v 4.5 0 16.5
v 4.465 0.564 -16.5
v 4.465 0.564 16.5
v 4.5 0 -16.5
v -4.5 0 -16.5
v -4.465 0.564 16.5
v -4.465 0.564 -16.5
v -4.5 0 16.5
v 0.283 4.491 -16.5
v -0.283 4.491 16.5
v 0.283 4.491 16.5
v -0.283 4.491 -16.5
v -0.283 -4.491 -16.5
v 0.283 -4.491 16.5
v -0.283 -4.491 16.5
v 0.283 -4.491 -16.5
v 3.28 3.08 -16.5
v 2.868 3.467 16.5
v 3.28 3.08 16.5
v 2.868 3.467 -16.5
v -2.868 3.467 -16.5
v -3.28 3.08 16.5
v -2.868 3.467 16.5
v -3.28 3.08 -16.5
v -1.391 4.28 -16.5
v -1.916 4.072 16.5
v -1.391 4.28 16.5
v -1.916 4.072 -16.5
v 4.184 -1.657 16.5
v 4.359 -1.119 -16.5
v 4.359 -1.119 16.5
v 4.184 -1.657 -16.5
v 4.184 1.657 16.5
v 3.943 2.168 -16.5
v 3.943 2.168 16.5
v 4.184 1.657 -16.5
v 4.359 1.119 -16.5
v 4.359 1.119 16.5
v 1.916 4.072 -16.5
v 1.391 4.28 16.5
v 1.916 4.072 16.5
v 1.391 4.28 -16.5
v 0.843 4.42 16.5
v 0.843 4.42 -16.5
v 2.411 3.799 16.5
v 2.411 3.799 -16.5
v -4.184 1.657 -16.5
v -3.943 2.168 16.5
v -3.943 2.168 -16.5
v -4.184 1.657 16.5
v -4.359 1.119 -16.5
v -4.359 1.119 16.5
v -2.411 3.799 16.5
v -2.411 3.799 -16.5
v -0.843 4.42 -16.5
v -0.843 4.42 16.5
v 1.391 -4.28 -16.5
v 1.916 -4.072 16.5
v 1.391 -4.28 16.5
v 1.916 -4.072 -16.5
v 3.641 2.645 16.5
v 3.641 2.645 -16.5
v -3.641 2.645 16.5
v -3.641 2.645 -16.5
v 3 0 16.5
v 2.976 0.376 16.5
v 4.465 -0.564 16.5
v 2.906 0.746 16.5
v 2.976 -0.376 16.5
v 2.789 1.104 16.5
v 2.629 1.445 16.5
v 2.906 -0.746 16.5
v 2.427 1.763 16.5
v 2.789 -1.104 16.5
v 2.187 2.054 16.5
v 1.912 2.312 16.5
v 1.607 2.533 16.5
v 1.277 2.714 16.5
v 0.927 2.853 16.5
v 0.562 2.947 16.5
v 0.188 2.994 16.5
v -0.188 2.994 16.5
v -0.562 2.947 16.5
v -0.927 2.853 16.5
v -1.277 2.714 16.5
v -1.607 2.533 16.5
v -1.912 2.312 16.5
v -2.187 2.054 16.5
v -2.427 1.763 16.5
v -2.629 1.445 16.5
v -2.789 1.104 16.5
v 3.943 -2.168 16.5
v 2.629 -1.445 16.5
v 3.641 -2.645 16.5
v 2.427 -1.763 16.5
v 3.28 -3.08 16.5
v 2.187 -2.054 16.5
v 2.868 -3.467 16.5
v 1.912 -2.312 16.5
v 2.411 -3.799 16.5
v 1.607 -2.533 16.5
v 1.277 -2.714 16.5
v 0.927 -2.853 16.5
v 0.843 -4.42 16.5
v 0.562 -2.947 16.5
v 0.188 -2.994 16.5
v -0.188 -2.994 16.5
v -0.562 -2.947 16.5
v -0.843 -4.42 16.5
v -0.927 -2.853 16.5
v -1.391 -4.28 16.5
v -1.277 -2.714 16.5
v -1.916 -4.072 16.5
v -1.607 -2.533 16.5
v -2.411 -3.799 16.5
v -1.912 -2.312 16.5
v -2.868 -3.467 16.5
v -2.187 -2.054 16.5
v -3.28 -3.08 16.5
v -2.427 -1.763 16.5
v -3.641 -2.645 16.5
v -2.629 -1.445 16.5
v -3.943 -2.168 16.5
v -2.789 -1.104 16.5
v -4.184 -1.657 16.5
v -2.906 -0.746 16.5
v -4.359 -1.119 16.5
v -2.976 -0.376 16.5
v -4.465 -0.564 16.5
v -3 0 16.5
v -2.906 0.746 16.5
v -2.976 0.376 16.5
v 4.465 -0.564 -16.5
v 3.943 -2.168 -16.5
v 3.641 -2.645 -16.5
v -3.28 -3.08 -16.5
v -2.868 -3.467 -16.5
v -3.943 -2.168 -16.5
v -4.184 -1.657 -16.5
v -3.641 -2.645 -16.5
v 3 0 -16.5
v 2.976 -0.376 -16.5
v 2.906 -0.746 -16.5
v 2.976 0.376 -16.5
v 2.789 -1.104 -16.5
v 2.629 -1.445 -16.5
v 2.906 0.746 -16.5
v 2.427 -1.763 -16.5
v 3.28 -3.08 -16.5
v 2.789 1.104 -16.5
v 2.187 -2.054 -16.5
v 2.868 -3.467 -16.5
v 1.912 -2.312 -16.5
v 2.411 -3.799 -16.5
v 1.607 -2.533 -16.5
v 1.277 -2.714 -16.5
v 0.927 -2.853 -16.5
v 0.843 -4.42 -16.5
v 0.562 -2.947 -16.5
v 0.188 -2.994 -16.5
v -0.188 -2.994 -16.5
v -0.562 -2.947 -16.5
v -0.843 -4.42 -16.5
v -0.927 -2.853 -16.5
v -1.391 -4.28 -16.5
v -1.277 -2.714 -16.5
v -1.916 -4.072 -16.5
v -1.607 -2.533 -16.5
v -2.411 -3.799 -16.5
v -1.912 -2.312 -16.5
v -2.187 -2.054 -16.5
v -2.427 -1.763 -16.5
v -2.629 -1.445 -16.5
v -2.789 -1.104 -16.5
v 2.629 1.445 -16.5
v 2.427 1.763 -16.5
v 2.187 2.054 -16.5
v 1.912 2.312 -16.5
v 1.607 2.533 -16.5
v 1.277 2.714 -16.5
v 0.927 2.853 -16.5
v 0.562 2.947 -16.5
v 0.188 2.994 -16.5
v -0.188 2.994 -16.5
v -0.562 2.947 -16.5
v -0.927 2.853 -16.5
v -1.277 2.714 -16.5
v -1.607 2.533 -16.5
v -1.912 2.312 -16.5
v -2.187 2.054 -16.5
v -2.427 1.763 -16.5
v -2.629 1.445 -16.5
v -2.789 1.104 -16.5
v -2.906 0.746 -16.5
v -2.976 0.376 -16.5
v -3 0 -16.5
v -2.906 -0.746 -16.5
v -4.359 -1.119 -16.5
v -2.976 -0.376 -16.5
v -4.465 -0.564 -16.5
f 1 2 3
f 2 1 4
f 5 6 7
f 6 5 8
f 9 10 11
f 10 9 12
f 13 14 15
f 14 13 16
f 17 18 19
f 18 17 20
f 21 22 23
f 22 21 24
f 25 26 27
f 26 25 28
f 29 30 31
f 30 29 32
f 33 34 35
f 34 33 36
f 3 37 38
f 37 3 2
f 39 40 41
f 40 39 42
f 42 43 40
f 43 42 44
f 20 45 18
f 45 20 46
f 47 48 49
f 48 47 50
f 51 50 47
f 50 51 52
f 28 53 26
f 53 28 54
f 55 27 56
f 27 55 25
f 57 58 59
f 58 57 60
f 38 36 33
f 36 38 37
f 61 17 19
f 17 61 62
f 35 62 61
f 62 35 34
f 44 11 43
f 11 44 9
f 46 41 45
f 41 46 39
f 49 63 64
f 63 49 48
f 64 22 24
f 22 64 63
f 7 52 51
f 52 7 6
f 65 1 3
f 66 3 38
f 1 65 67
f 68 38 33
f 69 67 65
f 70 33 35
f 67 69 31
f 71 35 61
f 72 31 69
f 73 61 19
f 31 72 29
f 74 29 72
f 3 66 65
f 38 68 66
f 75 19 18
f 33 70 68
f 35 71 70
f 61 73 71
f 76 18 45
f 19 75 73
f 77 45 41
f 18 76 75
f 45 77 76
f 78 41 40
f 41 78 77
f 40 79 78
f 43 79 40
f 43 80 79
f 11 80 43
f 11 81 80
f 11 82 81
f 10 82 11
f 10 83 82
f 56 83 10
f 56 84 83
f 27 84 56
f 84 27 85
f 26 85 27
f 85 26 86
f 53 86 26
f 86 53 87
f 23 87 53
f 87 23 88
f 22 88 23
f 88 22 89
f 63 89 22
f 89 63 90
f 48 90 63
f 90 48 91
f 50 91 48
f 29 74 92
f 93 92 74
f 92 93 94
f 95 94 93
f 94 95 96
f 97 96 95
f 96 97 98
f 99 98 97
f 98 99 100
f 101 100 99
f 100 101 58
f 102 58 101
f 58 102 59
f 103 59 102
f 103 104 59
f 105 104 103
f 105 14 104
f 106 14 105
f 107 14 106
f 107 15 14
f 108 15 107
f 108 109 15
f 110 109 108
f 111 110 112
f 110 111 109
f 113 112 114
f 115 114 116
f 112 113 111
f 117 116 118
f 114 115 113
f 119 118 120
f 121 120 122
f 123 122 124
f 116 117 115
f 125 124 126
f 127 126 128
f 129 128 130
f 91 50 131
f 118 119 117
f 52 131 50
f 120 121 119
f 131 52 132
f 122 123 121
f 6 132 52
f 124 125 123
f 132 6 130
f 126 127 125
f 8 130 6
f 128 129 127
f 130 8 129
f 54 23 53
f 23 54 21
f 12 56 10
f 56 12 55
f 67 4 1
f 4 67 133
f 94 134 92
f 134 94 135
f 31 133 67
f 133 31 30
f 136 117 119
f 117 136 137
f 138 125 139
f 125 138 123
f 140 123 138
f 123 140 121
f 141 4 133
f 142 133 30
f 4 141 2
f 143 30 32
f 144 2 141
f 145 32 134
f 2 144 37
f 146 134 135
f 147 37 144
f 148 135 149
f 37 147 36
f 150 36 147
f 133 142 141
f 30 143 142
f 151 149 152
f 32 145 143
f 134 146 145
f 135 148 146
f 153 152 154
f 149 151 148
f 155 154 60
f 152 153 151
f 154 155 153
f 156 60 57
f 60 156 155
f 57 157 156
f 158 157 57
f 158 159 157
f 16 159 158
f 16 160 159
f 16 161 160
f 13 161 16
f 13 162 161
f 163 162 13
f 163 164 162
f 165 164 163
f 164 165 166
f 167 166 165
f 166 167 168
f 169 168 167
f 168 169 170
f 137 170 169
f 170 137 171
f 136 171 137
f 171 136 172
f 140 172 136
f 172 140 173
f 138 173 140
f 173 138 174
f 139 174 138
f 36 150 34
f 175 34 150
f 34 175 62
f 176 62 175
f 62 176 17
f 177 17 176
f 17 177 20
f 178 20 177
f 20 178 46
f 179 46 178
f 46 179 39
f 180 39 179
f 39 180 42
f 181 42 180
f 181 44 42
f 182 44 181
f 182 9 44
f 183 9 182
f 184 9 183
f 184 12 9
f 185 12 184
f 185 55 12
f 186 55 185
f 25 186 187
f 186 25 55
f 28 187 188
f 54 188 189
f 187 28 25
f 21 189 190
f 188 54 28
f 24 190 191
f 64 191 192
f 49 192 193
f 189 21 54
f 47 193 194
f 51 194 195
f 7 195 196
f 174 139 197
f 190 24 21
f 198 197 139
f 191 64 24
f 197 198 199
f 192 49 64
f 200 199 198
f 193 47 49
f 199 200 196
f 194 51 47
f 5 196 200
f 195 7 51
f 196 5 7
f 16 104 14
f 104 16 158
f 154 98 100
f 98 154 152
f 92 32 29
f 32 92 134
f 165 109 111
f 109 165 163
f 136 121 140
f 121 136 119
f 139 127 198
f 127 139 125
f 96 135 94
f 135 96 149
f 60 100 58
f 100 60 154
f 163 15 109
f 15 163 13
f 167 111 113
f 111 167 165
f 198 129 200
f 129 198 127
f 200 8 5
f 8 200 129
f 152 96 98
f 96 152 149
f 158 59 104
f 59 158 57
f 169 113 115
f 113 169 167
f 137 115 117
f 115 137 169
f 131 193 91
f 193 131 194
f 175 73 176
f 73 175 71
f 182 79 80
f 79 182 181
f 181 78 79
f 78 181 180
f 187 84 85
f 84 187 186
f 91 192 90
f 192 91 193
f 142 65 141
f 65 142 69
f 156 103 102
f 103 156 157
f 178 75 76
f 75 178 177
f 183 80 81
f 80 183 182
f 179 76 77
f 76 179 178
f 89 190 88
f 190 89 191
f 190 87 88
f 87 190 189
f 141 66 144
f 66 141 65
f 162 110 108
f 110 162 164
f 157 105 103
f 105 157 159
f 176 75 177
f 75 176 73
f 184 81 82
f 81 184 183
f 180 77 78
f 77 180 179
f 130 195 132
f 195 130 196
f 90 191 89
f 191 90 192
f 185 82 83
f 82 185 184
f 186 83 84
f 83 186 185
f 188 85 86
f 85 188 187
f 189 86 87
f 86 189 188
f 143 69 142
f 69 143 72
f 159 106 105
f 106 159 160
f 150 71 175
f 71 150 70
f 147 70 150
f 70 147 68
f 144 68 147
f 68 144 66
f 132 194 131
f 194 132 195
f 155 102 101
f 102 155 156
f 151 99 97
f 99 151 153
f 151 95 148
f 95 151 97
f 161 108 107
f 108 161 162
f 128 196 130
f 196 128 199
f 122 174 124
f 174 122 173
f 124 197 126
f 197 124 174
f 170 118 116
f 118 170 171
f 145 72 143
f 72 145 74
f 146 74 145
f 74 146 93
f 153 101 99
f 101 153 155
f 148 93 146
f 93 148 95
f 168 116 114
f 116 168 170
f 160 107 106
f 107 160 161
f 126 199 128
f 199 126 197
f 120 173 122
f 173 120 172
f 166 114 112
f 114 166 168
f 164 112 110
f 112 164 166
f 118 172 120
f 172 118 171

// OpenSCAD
$fn = 50;


difference() {
	union() {
		translate(v = [0, 0, -16.5000000000]) {
			cylinder(h = 33, r = 4.5000000000);
		}
	}
	union() {
		translate(v = [0, 0, -100.0000000000]) {
			cylinder(h = 200, r = 3);
		}
	}
}
